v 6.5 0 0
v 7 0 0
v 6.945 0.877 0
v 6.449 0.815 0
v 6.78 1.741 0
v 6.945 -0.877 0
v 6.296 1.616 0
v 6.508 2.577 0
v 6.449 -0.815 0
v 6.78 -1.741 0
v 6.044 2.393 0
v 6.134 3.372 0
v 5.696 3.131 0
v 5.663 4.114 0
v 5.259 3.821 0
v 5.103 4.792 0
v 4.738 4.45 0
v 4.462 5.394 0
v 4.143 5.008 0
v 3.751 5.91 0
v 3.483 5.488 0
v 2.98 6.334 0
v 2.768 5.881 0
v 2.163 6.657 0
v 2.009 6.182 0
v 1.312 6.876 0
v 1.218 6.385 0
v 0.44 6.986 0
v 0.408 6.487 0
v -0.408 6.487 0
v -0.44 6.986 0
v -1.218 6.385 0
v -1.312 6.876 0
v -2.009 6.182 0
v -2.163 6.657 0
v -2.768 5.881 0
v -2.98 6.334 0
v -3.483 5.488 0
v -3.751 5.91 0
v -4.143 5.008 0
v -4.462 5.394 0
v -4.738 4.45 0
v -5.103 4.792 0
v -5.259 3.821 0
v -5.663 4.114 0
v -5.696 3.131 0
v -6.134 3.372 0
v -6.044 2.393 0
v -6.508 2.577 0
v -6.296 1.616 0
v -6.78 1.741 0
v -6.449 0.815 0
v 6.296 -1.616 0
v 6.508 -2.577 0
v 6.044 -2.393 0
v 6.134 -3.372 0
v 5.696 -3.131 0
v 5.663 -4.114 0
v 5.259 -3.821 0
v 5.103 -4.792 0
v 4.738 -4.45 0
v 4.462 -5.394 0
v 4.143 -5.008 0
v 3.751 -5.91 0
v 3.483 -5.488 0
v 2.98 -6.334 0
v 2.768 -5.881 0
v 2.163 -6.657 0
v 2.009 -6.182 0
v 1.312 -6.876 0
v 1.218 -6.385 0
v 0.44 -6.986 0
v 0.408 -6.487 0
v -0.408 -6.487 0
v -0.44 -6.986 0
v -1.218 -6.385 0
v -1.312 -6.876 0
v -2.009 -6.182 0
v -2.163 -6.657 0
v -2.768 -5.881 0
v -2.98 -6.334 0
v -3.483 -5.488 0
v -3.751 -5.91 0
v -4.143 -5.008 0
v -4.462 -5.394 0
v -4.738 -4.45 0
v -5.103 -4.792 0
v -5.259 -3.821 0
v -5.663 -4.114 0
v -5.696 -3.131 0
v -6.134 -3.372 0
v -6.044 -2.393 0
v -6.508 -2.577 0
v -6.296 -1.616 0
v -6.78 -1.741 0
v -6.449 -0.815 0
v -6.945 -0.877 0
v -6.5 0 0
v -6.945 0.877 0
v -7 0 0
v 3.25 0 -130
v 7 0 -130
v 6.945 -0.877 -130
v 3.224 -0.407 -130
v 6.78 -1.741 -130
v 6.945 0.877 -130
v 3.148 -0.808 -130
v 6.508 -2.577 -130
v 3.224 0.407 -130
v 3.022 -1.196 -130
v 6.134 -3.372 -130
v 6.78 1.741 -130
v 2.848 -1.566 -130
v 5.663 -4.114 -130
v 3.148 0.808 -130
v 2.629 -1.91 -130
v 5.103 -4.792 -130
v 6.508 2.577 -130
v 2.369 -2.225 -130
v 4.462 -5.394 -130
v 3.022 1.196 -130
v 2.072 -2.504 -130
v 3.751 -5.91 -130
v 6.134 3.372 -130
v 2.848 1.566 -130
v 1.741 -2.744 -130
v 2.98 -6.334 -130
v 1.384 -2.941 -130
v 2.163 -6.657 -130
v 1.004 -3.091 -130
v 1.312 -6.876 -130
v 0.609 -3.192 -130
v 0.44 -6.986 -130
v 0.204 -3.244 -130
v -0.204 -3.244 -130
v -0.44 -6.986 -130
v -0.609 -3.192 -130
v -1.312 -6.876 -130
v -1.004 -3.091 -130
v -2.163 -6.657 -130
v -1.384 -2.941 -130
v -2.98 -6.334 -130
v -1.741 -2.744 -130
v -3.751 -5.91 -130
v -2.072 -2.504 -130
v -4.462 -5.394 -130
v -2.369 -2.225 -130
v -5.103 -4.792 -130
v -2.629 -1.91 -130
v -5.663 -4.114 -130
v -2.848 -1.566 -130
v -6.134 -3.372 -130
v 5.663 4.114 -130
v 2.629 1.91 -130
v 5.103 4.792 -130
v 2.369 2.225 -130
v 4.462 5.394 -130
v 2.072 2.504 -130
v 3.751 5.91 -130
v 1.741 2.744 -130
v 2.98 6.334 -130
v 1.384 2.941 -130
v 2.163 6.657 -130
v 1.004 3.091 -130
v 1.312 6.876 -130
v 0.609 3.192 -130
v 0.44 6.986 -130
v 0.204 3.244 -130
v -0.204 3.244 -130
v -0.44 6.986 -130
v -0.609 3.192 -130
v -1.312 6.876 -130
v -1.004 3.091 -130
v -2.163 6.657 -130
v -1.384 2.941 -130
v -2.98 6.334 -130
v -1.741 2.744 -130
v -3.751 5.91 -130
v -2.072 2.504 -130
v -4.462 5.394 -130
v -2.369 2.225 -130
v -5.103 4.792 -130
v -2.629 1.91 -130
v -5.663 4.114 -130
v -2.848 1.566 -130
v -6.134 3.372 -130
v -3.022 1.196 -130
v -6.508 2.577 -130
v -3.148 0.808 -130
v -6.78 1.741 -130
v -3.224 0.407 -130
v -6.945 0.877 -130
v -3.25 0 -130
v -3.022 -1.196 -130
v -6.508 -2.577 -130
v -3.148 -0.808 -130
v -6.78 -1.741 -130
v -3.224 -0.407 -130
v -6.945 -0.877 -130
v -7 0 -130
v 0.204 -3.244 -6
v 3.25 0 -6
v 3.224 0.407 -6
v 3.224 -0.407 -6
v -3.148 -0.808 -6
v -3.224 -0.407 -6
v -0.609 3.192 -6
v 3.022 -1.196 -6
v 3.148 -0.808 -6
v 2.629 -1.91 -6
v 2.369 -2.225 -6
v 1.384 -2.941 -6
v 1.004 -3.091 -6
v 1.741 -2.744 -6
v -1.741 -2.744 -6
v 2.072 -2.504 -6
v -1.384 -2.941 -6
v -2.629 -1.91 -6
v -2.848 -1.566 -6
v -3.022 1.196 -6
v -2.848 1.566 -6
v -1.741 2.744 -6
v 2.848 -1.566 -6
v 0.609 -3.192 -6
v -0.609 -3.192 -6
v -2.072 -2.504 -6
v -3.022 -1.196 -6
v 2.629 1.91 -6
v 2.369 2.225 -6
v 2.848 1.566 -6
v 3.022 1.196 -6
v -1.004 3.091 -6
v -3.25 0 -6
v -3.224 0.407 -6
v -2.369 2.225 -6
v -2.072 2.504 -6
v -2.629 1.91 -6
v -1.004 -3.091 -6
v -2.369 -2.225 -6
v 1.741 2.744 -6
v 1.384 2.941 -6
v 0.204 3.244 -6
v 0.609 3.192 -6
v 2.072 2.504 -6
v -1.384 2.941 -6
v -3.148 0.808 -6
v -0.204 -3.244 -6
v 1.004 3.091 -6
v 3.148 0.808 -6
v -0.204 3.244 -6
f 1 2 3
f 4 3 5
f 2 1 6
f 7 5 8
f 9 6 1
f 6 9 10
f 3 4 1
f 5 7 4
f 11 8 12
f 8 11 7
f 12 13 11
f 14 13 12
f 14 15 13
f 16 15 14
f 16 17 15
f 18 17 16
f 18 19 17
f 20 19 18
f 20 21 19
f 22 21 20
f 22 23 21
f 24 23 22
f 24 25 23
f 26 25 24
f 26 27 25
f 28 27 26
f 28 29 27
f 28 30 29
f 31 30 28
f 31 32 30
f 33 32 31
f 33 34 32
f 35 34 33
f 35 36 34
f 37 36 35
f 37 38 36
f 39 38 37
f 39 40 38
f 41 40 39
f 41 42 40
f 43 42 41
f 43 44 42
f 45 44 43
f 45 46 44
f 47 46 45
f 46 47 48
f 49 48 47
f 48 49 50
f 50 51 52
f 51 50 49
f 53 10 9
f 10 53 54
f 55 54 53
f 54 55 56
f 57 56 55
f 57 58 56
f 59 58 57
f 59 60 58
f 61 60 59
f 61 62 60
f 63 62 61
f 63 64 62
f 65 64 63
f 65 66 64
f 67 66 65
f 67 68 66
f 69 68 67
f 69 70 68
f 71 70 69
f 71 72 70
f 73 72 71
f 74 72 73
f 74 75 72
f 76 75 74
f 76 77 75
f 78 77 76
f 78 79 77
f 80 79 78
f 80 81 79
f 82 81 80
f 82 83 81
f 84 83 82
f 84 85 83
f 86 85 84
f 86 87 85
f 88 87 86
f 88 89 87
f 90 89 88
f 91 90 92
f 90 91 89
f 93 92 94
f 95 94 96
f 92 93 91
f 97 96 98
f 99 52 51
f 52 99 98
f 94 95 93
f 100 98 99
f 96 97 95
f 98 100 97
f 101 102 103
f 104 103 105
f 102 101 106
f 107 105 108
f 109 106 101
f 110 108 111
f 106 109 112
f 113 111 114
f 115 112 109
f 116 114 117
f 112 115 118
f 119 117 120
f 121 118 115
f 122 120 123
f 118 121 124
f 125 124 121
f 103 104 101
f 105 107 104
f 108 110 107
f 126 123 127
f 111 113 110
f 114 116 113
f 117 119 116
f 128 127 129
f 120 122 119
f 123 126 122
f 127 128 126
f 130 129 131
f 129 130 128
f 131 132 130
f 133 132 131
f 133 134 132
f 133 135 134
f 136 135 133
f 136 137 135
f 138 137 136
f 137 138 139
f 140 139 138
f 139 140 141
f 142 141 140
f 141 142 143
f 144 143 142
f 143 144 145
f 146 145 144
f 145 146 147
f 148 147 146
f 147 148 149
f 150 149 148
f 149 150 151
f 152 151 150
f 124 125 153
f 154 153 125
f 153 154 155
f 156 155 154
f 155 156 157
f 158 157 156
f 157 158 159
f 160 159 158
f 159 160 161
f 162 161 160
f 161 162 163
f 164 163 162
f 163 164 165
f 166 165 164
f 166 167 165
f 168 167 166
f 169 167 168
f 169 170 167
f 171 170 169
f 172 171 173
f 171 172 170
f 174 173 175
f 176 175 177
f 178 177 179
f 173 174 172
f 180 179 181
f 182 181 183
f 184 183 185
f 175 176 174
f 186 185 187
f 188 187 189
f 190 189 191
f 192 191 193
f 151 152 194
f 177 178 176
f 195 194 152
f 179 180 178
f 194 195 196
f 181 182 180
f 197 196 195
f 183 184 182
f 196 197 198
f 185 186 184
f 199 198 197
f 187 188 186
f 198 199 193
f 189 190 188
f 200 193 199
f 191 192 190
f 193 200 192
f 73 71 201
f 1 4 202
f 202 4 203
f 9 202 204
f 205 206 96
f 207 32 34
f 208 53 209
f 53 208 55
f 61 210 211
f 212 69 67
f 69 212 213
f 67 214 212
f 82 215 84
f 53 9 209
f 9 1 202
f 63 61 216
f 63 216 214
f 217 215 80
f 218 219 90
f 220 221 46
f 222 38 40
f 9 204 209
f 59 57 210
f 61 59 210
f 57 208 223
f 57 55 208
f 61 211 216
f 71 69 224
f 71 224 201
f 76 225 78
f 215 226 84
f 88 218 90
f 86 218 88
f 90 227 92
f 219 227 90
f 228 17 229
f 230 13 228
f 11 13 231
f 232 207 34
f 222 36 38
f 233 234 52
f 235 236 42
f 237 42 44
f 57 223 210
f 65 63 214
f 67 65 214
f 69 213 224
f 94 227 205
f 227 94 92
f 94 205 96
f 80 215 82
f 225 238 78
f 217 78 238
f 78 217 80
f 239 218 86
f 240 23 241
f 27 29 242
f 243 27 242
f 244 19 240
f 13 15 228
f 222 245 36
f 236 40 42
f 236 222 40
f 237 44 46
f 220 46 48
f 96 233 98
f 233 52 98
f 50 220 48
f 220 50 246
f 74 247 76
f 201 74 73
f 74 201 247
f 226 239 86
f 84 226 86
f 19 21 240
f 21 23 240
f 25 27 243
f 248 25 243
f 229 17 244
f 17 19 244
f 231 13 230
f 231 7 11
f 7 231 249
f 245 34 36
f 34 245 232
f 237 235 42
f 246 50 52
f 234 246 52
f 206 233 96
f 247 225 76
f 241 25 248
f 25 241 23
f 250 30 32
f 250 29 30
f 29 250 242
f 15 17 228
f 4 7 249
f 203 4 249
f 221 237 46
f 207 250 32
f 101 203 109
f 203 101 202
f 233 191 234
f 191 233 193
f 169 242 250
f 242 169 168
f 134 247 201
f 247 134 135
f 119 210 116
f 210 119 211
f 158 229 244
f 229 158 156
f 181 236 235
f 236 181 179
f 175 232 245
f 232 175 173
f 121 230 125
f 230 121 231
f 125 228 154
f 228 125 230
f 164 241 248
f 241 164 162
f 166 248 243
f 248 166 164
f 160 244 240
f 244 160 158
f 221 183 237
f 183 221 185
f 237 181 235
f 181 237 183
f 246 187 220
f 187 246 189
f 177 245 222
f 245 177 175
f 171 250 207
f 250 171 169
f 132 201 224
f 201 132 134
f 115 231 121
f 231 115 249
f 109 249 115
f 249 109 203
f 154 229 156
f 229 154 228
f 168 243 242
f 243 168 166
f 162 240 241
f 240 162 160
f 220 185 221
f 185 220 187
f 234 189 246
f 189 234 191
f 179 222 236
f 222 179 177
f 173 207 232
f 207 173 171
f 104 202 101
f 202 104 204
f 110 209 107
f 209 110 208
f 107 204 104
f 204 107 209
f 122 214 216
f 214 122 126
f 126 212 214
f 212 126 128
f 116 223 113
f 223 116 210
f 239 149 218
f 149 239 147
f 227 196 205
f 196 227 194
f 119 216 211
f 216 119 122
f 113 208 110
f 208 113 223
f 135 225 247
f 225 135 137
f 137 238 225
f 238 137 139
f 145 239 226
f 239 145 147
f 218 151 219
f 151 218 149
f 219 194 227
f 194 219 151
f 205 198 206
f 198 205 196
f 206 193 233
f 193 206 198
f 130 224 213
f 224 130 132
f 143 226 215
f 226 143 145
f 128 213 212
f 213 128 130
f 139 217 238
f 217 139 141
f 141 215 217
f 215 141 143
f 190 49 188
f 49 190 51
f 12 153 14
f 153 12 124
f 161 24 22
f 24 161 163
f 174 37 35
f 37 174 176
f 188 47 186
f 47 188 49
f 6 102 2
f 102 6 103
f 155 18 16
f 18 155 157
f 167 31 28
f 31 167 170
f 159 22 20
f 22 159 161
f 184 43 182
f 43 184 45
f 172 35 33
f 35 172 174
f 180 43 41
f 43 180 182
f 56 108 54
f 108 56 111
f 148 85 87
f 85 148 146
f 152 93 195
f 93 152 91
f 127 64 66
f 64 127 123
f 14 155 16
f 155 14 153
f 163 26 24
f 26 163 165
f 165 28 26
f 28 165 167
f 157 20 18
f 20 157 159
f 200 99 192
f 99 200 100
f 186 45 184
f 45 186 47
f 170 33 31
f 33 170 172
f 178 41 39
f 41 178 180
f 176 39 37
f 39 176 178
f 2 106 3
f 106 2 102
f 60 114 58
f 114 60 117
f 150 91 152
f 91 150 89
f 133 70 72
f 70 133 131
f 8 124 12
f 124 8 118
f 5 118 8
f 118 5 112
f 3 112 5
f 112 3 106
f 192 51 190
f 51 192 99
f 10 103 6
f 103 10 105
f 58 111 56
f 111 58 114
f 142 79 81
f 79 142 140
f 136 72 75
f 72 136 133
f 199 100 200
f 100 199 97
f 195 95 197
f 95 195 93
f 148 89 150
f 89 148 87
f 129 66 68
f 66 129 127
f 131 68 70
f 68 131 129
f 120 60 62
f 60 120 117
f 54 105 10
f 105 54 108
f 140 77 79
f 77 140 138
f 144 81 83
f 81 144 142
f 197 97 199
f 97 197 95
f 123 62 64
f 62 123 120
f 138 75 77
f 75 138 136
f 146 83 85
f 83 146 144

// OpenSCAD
$fn = 50;


difference() {
	union() {
		translate(v = [0, 0, -130.0000000000]) {
			cylinder(h = 130, r = 7.0000000000);
		}
		cylinder(h = 0, r = 13.0000000000);
	}
	union() {
		translate(v = [0, 0, 0]) {
			rotate(a = [0, 0, 0]) {
				difference() {
					union() {
						#translate(v = [0, 0, -130.0000000000]) {
							cylinder(h = 130, r = 2.2500000000);
						}
						#translate(v = [0, 0, -6]) {
							cylinder(h = 6, r = 7.0000000000, r1 = 3.2500000000, r2 = 6.5000000000);
						}
						#translate(v = [0, 0, -130.0000000000]) {
							cylinder(h = 130, r = 3.2500000000);
						}
						#translate(v = [0, 0, -130.0000000000]) {
							cylinder(h = 130, r = 2.2500000000);
						}
					}
					union();
				}
			}
		}
	}
}
